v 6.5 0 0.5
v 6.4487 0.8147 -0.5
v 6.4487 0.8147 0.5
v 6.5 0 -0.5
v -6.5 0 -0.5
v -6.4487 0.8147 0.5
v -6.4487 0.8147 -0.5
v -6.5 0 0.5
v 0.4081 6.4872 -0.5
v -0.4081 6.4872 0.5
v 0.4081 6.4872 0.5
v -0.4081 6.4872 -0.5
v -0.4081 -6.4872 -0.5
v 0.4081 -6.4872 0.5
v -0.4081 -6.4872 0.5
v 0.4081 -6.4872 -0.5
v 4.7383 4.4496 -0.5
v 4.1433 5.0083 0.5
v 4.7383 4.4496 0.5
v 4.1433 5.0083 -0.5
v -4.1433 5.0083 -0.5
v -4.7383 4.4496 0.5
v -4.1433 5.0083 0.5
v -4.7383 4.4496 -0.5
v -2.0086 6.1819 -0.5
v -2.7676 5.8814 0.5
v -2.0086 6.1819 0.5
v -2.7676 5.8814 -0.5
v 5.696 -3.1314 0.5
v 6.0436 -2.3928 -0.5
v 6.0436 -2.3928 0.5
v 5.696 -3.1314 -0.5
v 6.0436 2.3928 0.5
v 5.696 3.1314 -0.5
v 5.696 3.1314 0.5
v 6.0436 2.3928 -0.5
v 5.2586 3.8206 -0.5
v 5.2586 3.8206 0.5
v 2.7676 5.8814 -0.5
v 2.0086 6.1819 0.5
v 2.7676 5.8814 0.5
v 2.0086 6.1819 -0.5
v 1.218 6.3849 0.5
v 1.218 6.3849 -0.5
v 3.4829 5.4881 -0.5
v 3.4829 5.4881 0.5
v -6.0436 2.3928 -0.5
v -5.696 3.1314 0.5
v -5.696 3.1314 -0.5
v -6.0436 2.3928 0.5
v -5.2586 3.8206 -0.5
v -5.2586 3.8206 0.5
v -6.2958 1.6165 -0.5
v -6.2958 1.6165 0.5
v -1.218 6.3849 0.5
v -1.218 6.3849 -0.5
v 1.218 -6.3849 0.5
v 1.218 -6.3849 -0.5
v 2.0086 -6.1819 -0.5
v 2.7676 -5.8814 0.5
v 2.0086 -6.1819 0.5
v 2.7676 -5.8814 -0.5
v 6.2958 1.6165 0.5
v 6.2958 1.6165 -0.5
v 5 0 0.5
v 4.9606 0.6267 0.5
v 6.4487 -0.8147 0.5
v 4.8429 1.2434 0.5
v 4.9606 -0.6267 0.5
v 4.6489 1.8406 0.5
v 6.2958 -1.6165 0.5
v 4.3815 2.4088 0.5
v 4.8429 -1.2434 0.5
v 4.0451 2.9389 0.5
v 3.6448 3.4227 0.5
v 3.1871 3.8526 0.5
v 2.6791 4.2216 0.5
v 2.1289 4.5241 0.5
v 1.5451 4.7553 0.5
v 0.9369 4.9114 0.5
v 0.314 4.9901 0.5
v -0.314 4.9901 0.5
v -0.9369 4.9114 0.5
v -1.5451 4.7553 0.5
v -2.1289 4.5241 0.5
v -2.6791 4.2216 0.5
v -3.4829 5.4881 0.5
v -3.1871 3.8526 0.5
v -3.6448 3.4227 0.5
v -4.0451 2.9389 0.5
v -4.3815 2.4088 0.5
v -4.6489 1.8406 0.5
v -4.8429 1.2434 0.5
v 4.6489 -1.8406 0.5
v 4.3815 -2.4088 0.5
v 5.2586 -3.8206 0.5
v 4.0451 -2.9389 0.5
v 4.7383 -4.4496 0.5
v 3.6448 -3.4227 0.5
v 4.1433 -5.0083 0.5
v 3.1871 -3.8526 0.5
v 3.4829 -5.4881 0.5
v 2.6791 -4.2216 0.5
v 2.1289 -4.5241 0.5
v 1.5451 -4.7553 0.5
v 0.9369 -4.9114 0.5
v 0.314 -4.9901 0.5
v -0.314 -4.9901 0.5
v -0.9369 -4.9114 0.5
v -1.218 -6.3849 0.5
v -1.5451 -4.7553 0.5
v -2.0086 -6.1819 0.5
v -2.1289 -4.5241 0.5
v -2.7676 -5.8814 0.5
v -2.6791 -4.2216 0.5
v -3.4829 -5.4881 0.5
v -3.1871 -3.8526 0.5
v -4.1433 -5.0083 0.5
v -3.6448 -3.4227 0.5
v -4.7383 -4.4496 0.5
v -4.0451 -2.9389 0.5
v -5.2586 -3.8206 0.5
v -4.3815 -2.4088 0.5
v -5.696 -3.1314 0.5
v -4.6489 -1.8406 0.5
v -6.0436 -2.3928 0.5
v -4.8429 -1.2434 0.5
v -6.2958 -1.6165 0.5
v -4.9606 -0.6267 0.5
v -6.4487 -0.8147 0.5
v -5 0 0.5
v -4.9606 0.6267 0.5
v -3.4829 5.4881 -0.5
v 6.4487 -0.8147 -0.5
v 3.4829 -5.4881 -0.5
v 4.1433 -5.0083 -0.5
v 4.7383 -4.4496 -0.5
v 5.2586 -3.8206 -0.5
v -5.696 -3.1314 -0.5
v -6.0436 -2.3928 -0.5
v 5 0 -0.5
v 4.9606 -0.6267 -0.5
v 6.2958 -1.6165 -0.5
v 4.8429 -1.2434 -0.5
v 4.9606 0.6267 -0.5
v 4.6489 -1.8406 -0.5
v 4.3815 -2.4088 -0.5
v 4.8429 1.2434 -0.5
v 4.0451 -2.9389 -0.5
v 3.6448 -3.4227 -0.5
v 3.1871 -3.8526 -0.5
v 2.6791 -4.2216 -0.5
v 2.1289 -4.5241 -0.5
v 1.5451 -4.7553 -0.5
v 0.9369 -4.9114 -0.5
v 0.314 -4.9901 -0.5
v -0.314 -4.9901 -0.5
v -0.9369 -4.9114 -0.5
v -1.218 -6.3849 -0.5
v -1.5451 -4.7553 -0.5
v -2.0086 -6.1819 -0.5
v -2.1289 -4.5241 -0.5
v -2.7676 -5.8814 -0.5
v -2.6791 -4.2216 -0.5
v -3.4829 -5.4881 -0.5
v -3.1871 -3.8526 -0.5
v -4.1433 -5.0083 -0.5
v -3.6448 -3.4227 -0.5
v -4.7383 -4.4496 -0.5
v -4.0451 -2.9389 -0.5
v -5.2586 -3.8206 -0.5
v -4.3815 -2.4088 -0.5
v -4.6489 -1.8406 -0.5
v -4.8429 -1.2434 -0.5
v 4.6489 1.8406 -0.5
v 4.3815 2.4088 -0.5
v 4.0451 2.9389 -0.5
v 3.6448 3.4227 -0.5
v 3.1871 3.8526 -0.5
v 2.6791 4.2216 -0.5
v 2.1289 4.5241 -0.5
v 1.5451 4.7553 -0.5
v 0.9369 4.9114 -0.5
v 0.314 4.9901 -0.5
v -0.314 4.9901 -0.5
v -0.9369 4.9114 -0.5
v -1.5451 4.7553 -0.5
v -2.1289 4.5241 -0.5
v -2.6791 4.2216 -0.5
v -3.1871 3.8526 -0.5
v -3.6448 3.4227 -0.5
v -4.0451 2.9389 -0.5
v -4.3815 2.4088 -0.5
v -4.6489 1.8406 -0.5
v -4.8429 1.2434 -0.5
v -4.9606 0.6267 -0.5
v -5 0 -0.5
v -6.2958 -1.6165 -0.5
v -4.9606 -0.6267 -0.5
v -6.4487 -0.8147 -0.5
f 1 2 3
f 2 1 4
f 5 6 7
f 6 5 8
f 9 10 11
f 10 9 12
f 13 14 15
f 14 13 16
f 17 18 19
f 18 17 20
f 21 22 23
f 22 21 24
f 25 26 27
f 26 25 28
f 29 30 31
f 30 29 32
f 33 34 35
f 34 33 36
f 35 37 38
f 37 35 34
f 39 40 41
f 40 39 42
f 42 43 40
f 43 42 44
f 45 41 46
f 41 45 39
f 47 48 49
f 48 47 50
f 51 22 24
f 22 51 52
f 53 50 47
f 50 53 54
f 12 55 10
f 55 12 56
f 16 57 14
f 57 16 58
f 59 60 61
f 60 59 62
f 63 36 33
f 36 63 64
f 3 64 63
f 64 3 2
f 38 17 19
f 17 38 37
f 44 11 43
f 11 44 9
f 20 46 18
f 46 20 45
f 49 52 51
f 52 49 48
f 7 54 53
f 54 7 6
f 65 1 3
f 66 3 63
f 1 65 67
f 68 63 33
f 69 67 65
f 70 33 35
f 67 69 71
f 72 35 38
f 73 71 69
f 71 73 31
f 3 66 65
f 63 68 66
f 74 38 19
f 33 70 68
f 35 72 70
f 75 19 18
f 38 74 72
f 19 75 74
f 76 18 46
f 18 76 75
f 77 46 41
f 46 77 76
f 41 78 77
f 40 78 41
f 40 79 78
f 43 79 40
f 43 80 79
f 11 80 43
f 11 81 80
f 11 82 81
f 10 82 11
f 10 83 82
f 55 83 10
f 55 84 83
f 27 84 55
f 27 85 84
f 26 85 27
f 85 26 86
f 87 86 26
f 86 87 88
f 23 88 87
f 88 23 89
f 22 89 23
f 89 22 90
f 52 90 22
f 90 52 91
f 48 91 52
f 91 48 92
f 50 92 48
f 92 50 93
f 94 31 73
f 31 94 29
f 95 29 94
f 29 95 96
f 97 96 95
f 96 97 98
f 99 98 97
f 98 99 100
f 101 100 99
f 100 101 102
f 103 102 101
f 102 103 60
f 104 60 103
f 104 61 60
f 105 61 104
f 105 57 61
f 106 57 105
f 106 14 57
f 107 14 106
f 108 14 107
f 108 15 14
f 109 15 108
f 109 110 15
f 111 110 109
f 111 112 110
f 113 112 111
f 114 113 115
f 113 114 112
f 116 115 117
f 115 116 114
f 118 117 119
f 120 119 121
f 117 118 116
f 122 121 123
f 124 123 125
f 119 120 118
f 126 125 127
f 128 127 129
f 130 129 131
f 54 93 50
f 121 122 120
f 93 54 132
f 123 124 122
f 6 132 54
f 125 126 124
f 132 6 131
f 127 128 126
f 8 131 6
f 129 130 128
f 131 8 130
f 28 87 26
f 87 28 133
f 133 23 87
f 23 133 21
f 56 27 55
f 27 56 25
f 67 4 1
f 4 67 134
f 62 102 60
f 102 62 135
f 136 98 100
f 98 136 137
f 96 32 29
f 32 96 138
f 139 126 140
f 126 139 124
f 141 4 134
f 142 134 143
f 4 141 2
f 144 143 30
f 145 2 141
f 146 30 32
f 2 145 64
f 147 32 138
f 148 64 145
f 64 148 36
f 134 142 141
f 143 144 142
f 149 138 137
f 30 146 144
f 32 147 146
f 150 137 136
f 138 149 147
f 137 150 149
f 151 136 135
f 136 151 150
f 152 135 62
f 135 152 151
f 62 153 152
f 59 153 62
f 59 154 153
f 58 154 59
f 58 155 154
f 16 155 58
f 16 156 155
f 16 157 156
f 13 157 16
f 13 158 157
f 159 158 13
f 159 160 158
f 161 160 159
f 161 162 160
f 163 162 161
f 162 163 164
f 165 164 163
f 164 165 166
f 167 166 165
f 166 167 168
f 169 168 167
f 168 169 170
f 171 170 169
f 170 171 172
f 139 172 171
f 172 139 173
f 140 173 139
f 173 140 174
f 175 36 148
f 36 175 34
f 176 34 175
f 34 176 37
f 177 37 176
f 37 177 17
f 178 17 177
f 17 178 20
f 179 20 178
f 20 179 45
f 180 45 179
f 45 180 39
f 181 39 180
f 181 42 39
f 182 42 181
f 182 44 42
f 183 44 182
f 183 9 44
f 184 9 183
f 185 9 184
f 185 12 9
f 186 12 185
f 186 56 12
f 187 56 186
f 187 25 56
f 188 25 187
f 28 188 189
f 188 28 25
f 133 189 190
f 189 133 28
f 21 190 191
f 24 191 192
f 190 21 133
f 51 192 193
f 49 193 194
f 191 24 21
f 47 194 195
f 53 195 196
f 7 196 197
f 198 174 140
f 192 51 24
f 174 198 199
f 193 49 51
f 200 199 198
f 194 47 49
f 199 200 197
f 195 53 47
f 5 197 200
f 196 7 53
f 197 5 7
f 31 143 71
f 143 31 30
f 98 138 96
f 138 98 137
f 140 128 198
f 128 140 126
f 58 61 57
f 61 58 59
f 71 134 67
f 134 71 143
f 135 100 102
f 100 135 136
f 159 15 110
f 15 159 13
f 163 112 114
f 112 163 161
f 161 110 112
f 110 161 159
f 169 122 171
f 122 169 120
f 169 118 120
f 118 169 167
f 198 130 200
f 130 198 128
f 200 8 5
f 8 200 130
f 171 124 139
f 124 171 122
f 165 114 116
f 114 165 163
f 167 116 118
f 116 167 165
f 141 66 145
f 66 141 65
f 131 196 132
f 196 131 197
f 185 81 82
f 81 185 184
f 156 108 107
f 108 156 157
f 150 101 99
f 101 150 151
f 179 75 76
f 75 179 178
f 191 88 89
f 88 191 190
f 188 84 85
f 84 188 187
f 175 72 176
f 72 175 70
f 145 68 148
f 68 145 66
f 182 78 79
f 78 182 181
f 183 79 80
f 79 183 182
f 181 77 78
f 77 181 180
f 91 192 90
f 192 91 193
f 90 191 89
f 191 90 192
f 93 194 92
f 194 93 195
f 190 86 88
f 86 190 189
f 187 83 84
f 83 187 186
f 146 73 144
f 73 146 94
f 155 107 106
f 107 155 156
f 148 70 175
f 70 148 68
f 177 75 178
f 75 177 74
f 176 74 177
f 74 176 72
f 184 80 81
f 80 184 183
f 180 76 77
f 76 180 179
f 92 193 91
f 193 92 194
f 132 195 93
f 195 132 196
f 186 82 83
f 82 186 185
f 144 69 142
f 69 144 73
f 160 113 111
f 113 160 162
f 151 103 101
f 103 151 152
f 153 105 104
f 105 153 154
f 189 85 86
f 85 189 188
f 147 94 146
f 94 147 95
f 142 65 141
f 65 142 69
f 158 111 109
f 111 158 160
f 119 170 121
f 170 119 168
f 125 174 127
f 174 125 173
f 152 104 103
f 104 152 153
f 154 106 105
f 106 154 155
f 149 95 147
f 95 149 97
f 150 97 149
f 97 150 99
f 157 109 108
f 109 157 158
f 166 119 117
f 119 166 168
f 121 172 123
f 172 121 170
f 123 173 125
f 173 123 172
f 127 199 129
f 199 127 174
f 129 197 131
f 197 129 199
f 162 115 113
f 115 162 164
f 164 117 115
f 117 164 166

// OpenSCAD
$fn = 50;


difference() {
	union() {
		translate(v = [0, 0, -0.5000000000]) {
			cylinder(h = 1, r = 6.5000000000);
		}
	}
	union() {
		translate(v = [0, 0, -100.0000000000]) {
			cylinder(h = 200, r = 5);
		}
	}
}
